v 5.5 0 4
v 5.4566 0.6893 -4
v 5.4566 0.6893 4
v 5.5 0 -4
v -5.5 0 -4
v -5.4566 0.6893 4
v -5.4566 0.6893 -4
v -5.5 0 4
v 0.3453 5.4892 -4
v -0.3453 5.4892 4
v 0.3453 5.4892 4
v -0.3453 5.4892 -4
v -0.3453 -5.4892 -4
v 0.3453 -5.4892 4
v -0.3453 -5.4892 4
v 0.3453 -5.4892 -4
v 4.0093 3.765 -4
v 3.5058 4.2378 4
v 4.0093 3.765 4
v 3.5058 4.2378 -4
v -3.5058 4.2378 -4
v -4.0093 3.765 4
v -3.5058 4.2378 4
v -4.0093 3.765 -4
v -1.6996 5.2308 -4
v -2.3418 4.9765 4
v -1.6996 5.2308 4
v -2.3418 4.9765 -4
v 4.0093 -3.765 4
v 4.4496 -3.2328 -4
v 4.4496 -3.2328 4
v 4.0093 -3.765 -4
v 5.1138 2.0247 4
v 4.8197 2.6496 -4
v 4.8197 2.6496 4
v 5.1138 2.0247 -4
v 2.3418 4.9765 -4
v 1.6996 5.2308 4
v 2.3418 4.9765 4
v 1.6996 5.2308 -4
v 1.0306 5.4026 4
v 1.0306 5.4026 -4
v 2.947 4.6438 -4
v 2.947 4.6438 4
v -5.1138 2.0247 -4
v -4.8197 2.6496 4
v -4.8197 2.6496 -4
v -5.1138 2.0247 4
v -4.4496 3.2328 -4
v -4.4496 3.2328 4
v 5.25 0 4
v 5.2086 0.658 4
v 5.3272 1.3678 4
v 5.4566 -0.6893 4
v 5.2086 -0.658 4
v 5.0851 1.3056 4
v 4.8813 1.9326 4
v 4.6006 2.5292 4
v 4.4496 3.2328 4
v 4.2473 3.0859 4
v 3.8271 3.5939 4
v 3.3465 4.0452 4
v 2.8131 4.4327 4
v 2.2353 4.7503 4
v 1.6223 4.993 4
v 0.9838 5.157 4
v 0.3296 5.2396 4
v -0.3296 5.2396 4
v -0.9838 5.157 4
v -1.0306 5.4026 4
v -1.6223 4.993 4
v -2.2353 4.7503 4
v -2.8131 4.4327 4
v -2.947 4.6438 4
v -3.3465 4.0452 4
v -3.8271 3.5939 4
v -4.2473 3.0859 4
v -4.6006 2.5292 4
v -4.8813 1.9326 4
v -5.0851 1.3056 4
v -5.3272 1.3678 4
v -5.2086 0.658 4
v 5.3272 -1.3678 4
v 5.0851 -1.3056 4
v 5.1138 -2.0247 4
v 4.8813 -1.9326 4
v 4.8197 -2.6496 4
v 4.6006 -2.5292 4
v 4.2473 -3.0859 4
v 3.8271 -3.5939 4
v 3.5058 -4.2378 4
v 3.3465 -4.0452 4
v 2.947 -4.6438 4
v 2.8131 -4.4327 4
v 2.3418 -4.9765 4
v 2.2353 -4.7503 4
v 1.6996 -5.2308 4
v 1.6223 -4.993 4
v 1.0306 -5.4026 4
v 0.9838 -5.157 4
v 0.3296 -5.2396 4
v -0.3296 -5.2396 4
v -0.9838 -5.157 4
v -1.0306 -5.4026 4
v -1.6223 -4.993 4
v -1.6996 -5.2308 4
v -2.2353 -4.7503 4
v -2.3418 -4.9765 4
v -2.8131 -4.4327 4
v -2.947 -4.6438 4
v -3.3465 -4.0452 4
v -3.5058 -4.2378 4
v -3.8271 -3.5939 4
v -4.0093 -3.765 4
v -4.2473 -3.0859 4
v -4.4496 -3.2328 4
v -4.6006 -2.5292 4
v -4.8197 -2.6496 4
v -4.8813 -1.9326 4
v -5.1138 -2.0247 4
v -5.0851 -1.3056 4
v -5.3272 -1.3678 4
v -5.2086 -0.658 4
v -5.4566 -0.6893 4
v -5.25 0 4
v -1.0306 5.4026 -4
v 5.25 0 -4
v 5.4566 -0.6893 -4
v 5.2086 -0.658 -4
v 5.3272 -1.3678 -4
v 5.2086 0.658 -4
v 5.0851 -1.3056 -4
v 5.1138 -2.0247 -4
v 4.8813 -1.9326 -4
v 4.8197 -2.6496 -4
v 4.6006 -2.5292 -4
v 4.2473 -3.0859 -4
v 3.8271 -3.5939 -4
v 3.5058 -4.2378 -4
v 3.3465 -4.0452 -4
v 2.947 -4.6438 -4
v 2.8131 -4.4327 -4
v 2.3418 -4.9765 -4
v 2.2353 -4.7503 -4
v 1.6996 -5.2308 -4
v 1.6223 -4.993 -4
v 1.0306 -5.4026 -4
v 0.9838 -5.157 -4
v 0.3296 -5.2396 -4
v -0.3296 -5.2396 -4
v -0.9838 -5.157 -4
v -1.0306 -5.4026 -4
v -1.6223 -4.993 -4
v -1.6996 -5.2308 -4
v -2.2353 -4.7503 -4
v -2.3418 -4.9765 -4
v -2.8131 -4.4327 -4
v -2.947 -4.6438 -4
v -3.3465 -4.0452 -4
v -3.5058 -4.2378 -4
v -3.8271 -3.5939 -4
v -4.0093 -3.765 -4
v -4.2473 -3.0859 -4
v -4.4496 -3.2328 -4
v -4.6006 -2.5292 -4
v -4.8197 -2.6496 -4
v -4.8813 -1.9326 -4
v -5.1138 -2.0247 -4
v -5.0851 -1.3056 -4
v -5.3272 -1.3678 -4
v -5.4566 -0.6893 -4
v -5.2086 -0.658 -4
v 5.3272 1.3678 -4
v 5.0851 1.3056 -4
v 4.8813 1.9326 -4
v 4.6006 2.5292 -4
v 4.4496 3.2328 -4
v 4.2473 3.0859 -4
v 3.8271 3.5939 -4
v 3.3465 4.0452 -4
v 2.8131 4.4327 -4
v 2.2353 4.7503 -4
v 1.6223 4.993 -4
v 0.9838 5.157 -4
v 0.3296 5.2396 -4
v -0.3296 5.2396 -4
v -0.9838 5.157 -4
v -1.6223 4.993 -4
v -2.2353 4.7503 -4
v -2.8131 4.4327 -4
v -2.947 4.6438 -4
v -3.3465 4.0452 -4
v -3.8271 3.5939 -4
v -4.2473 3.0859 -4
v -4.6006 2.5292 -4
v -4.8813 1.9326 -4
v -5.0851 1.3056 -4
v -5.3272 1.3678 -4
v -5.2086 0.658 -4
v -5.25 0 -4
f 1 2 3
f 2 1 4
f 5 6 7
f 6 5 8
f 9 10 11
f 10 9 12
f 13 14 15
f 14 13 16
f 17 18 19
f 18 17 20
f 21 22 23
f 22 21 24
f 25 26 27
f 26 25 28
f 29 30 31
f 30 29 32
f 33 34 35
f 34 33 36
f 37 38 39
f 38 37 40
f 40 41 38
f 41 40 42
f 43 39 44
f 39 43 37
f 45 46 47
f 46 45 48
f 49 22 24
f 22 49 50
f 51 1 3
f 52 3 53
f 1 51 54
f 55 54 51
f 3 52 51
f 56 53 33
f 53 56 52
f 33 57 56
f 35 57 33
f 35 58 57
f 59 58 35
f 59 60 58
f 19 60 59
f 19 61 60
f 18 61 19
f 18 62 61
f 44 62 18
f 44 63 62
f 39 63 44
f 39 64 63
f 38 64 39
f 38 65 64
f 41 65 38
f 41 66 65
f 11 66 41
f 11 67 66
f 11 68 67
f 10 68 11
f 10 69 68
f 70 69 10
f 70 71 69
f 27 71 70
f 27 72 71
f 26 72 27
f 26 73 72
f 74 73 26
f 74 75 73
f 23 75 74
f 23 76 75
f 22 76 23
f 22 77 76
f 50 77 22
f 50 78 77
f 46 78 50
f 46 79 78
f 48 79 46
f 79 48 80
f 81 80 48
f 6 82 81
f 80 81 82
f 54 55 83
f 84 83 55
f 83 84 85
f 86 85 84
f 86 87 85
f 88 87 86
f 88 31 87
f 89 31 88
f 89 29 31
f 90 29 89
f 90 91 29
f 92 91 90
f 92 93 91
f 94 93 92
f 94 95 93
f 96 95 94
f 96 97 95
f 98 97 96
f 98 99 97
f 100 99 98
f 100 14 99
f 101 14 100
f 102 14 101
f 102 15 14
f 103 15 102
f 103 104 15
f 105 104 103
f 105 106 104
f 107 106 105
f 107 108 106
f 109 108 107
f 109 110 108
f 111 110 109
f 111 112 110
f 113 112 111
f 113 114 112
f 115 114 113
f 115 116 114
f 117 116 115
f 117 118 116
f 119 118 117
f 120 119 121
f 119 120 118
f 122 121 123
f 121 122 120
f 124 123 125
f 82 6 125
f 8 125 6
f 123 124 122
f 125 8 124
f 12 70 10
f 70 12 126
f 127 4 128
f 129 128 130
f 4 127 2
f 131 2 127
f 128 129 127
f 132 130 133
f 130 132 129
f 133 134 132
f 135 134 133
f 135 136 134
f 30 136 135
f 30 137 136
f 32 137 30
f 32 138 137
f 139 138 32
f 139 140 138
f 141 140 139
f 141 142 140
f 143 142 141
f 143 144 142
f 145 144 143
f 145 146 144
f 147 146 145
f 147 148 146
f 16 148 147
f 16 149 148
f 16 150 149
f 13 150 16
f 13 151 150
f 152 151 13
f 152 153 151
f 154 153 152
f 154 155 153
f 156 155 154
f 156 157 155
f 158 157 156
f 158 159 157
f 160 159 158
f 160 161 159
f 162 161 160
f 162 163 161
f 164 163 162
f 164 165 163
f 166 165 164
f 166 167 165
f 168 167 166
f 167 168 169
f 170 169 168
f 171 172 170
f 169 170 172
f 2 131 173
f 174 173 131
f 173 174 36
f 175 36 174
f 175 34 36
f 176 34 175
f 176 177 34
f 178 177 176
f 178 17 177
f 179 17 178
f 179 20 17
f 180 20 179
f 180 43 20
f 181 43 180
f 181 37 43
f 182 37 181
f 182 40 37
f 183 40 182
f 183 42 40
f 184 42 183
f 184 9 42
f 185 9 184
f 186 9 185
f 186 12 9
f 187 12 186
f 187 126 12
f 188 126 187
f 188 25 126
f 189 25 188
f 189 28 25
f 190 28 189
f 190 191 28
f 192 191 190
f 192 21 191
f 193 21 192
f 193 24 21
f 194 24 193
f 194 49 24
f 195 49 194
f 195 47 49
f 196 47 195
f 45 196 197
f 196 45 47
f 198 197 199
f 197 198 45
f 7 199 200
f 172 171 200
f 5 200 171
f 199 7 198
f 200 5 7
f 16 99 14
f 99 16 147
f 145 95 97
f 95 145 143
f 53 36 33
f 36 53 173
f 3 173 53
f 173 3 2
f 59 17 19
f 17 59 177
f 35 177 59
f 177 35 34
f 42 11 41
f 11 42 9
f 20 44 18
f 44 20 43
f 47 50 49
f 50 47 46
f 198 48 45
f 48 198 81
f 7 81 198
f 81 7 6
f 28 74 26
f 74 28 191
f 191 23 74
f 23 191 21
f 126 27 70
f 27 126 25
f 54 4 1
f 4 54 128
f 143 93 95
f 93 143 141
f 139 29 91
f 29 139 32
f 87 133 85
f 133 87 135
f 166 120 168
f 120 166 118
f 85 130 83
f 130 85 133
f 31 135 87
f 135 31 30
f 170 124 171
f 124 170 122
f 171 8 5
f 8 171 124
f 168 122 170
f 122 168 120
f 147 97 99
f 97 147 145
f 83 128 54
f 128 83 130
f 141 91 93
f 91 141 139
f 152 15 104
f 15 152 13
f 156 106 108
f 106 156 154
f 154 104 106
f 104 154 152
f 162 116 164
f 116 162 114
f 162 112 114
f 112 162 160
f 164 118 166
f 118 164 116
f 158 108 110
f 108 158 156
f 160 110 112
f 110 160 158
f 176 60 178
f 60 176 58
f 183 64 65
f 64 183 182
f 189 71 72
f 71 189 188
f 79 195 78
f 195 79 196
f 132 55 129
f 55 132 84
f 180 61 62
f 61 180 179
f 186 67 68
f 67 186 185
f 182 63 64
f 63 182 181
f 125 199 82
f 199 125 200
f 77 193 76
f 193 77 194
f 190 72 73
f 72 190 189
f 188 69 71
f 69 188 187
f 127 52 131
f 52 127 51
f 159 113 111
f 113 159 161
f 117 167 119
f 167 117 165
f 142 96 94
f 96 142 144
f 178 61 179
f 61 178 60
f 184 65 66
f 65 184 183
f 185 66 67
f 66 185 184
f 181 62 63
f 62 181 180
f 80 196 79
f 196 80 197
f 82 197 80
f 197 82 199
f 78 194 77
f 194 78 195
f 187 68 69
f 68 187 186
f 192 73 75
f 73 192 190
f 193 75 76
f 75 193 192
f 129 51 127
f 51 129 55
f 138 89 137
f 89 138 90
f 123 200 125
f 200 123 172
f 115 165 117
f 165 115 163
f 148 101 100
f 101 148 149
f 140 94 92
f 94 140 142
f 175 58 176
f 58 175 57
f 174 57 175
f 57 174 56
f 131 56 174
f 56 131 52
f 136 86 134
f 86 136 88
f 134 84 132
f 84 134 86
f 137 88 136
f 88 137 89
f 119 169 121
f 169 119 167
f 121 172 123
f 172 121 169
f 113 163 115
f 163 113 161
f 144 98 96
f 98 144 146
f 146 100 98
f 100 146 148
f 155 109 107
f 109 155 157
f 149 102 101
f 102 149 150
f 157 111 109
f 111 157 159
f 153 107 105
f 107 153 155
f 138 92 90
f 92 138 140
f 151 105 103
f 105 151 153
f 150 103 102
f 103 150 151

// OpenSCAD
$fn = 50;


difference() {
	union() {
		translate(v = [0, 0, -4.0000000000]) {
			cylinder(h = 8, r = 5.5000000000);
		}
	}
	union() {
		translate(v = [0, 0, -100.0000000000]) {
			cylinder(h = 200, r = 5.2500000000);
		}
	}
}
